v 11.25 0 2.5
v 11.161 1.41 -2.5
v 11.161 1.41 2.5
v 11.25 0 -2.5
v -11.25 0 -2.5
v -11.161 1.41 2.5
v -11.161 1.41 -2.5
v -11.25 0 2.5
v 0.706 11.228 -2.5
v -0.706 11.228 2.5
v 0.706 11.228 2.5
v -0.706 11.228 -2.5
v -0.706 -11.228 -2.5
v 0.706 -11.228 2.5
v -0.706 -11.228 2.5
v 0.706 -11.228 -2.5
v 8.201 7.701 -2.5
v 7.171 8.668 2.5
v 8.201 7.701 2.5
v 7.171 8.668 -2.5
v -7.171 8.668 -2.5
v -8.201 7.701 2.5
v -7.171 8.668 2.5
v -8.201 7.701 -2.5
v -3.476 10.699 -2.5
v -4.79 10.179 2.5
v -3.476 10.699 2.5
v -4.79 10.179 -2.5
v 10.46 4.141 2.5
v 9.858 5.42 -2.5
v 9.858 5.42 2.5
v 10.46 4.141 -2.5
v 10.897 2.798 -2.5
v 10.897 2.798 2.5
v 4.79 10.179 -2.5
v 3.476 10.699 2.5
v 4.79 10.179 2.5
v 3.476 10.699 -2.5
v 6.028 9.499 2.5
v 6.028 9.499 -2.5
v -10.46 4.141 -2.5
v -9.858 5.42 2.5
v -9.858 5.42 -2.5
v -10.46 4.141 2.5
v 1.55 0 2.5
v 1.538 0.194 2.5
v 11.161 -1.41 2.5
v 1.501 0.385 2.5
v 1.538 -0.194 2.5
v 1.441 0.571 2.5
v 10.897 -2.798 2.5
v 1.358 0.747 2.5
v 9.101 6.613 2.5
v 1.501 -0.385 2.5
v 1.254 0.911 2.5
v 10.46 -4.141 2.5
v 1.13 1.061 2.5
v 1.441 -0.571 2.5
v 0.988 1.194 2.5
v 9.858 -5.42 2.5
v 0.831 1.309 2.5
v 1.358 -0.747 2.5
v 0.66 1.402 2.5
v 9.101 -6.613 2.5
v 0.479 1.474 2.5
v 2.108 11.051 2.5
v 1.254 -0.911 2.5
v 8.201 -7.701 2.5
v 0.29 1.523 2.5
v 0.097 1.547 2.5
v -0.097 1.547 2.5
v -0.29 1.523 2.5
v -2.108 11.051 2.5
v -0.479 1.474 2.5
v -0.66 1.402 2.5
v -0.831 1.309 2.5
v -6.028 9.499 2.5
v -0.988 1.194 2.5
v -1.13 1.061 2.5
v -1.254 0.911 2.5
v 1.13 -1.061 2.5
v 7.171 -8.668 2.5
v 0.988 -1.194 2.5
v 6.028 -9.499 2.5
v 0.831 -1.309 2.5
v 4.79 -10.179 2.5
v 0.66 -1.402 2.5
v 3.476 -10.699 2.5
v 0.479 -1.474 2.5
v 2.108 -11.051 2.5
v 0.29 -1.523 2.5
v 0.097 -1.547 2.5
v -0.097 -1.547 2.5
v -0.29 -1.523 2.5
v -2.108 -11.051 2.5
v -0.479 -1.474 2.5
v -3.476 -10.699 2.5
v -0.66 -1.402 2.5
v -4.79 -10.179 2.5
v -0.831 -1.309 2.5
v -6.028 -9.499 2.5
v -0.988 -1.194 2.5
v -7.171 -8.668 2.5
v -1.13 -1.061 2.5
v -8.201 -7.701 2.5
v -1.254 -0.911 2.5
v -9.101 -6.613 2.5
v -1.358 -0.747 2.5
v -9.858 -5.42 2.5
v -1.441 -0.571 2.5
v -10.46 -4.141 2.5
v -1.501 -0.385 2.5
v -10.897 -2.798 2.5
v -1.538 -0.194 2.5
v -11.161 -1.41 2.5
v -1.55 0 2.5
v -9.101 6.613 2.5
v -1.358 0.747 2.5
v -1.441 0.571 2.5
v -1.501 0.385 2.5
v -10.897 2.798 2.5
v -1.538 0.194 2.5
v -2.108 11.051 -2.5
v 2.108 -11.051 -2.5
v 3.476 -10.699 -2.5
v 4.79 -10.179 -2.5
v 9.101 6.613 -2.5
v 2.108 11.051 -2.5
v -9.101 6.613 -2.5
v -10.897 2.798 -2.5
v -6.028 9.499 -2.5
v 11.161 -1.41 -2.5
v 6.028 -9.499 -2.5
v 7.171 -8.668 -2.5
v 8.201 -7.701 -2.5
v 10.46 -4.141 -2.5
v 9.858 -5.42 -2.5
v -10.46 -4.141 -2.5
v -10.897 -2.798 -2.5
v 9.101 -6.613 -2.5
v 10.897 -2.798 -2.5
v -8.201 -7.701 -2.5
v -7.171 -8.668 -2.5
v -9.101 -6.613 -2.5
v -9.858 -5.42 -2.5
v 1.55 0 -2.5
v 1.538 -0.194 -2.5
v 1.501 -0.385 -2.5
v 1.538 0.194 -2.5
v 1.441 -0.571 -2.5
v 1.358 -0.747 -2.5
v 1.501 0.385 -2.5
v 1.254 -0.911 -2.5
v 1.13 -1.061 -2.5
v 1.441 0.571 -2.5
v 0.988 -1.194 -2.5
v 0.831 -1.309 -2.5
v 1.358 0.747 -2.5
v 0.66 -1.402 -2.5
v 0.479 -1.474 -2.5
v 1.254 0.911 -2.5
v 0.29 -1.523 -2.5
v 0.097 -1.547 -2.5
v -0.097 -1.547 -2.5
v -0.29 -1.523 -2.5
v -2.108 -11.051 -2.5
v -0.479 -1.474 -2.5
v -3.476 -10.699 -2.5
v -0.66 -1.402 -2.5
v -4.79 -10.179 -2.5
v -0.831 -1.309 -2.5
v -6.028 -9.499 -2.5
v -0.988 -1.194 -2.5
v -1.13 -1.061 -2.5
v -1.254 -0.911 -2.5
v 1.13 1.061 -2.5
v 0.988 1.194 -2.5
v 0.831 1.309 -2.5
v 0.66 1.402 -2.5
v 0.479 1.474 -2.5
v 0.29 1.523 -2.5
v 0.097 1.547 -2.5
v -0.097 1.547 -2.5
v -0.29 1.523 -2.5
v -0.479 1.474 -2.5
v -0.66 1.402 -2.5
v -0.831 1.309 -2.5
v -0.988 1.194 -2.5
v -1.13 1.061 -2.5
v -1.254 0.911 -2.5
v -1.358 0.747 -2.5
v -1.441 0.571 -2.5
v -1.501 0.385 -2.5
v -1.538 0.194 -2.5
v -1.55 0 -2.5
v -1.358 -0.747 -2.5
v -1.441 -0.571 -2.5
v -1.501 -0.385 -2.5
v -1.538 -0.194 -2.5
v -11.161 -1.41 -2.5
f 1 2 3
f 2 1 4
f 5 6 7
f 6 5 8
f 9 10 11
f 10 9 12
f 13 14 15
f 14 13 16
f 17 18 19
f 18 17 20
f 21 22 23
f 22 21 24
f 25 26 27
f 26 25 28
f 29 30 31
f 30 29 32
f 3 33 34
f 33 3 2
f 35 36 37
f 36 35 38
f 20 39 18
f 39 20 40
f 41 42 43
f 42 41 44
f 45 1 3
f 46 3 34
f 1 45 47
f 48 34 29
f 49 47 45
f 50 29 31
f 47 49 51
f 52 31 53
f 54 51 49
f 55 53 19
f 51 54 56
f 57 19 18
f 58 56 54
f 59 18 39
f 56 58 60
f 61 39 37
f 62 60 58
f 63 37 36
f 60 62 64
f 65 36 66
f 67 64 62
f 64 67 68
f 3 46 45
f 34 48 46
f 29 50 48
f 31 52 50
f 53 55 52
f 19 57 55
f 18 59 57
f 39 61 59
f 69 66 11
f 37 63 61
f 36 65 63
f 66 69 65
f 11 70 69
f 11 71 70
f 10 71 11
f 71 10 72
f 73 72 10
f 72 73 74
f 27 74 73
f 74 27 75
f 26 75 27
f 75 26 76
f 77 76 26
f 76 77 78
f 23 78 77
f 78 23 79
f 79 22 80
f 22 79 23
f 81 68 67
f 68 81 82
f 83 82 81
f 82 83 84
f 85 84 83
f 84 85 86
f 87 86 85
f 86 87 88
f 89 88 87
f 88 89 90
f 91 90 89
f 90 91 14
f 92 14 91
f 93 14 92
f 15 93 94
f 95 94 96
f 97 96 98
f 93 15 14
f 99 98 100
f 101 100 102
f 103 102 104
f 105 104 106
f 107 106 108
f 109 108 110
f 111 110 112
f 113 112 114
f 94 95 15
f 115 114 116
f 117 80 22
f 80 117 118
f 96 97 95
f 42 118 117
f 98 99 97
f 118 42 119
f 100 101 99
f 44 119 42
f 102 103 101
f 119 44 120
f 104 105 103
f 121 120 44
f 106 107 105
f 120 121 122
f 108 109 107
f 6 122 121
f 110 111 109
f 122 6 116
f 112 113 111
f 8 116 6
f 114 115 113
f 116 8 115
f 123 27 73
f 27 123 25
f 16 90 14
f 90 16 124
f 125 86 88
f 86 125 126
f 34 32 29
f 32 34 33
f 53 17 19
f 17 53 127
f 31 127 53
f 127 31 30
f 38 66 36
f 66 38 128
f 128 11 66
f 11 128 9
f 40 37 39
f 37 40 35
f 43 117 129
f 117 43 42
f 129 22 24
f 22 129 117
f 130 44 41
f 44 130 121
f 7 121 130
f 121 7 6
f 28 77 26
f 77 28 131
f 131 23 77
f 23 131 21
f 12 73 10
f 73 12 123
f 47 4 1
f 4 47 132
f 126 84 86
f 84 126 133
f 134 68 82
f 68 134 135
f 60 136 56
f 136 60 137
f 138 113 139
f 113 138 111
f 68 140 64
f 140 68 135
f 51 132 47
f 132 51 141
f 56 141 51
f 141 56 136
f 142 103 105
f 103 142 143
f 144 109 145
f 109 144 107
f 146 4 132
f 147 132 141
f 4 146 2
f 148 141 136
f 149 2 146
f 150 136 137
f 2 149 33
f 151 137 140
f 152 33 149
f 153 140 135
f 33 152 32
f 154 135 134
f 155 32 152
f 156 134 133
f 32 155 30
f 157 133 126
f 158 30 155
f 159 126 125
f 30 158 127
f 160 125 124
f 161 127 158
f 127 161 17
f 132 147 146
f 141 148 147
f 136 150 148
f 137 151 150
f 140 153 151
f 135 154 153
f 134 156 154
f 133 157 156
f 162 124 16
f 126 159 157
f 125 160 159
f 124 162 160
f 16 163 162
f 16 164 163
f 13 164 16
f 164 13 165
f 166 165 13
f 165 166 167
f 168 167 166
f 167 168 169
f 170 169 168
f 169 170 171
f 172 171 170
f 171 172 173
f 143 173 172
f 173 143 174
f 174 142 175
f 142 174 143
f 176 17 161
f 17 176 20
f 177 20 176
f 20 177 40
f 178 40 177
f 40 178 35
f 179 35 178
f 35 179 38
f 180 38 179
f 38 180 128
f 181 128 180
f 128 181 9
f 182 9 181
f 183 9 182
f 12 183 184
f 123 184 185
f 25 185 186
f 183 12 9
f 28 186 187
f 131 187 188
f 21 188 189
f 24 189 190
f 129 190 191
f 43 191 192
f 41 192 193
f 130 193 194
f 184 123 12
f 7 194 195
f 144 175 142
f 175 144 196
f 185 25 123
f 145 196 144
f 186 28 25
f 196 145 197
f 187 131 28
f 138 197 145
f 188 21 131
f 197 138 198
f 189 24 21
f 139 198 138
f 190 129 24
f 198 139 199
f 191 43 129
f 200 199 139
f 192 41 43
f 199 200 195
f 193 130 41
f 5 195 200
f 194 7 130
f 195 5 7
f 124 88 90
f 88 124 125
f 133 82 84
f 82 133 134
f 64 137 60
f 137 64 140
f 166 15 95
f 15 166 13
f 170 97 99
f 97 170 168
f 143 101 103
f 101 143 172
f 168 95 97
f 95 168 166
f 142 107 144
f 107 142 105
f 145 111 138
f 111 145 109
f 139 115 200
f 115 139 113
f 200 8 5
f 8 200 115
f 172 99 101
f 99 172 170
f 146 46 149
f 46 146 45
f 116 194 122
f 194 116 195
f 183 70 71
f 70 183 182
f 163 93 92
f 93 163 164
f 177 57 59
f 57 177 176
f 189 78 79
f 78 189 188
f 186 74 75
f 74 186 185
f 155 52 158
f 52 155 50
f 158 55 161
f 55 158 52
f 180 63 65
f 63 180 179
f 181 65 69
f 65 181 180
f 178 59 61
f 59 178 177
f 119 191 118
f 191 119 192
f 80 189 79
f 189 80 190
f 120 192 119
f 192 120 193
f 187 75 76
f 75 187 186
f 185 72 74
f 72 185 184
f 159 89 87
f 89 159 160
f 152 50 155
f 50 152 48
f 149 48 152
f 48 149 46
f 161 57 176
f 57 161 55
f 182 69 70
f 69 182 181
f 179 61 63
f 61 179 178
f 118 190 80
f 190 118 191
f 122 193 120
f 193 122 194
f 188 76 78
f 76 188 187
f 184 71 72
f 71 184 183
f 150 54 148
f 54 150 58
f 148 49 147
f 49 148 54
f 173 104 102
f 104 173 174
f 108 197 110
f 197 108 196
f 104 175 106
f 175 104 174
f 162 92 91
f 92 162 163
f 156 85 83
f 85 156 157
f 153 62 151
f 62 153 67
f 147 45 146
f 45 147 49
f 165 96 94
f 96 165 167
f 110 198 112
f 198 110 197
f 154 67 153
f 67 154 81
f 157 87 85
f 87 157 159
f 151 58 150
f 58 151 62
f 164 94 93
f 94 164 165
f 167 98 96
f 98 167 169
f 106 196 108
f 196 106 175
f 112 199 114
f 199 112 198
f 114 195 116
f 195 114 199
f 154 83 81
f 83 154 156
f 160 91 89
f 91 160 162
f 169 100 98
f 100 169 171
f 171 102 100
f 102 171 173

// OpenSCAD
$fn = 50;


difference() {
	union() {
		translate(v = [0, 0, -2.5000000000]) {
			cylinder(h = 5, r = 11.2500000000);
		}
	}
	union() {
		translate(v = [0, 0, -100.0000000000]) {
			cylinder(h = 200, r = 1.5500000000);
		}
	}
}
